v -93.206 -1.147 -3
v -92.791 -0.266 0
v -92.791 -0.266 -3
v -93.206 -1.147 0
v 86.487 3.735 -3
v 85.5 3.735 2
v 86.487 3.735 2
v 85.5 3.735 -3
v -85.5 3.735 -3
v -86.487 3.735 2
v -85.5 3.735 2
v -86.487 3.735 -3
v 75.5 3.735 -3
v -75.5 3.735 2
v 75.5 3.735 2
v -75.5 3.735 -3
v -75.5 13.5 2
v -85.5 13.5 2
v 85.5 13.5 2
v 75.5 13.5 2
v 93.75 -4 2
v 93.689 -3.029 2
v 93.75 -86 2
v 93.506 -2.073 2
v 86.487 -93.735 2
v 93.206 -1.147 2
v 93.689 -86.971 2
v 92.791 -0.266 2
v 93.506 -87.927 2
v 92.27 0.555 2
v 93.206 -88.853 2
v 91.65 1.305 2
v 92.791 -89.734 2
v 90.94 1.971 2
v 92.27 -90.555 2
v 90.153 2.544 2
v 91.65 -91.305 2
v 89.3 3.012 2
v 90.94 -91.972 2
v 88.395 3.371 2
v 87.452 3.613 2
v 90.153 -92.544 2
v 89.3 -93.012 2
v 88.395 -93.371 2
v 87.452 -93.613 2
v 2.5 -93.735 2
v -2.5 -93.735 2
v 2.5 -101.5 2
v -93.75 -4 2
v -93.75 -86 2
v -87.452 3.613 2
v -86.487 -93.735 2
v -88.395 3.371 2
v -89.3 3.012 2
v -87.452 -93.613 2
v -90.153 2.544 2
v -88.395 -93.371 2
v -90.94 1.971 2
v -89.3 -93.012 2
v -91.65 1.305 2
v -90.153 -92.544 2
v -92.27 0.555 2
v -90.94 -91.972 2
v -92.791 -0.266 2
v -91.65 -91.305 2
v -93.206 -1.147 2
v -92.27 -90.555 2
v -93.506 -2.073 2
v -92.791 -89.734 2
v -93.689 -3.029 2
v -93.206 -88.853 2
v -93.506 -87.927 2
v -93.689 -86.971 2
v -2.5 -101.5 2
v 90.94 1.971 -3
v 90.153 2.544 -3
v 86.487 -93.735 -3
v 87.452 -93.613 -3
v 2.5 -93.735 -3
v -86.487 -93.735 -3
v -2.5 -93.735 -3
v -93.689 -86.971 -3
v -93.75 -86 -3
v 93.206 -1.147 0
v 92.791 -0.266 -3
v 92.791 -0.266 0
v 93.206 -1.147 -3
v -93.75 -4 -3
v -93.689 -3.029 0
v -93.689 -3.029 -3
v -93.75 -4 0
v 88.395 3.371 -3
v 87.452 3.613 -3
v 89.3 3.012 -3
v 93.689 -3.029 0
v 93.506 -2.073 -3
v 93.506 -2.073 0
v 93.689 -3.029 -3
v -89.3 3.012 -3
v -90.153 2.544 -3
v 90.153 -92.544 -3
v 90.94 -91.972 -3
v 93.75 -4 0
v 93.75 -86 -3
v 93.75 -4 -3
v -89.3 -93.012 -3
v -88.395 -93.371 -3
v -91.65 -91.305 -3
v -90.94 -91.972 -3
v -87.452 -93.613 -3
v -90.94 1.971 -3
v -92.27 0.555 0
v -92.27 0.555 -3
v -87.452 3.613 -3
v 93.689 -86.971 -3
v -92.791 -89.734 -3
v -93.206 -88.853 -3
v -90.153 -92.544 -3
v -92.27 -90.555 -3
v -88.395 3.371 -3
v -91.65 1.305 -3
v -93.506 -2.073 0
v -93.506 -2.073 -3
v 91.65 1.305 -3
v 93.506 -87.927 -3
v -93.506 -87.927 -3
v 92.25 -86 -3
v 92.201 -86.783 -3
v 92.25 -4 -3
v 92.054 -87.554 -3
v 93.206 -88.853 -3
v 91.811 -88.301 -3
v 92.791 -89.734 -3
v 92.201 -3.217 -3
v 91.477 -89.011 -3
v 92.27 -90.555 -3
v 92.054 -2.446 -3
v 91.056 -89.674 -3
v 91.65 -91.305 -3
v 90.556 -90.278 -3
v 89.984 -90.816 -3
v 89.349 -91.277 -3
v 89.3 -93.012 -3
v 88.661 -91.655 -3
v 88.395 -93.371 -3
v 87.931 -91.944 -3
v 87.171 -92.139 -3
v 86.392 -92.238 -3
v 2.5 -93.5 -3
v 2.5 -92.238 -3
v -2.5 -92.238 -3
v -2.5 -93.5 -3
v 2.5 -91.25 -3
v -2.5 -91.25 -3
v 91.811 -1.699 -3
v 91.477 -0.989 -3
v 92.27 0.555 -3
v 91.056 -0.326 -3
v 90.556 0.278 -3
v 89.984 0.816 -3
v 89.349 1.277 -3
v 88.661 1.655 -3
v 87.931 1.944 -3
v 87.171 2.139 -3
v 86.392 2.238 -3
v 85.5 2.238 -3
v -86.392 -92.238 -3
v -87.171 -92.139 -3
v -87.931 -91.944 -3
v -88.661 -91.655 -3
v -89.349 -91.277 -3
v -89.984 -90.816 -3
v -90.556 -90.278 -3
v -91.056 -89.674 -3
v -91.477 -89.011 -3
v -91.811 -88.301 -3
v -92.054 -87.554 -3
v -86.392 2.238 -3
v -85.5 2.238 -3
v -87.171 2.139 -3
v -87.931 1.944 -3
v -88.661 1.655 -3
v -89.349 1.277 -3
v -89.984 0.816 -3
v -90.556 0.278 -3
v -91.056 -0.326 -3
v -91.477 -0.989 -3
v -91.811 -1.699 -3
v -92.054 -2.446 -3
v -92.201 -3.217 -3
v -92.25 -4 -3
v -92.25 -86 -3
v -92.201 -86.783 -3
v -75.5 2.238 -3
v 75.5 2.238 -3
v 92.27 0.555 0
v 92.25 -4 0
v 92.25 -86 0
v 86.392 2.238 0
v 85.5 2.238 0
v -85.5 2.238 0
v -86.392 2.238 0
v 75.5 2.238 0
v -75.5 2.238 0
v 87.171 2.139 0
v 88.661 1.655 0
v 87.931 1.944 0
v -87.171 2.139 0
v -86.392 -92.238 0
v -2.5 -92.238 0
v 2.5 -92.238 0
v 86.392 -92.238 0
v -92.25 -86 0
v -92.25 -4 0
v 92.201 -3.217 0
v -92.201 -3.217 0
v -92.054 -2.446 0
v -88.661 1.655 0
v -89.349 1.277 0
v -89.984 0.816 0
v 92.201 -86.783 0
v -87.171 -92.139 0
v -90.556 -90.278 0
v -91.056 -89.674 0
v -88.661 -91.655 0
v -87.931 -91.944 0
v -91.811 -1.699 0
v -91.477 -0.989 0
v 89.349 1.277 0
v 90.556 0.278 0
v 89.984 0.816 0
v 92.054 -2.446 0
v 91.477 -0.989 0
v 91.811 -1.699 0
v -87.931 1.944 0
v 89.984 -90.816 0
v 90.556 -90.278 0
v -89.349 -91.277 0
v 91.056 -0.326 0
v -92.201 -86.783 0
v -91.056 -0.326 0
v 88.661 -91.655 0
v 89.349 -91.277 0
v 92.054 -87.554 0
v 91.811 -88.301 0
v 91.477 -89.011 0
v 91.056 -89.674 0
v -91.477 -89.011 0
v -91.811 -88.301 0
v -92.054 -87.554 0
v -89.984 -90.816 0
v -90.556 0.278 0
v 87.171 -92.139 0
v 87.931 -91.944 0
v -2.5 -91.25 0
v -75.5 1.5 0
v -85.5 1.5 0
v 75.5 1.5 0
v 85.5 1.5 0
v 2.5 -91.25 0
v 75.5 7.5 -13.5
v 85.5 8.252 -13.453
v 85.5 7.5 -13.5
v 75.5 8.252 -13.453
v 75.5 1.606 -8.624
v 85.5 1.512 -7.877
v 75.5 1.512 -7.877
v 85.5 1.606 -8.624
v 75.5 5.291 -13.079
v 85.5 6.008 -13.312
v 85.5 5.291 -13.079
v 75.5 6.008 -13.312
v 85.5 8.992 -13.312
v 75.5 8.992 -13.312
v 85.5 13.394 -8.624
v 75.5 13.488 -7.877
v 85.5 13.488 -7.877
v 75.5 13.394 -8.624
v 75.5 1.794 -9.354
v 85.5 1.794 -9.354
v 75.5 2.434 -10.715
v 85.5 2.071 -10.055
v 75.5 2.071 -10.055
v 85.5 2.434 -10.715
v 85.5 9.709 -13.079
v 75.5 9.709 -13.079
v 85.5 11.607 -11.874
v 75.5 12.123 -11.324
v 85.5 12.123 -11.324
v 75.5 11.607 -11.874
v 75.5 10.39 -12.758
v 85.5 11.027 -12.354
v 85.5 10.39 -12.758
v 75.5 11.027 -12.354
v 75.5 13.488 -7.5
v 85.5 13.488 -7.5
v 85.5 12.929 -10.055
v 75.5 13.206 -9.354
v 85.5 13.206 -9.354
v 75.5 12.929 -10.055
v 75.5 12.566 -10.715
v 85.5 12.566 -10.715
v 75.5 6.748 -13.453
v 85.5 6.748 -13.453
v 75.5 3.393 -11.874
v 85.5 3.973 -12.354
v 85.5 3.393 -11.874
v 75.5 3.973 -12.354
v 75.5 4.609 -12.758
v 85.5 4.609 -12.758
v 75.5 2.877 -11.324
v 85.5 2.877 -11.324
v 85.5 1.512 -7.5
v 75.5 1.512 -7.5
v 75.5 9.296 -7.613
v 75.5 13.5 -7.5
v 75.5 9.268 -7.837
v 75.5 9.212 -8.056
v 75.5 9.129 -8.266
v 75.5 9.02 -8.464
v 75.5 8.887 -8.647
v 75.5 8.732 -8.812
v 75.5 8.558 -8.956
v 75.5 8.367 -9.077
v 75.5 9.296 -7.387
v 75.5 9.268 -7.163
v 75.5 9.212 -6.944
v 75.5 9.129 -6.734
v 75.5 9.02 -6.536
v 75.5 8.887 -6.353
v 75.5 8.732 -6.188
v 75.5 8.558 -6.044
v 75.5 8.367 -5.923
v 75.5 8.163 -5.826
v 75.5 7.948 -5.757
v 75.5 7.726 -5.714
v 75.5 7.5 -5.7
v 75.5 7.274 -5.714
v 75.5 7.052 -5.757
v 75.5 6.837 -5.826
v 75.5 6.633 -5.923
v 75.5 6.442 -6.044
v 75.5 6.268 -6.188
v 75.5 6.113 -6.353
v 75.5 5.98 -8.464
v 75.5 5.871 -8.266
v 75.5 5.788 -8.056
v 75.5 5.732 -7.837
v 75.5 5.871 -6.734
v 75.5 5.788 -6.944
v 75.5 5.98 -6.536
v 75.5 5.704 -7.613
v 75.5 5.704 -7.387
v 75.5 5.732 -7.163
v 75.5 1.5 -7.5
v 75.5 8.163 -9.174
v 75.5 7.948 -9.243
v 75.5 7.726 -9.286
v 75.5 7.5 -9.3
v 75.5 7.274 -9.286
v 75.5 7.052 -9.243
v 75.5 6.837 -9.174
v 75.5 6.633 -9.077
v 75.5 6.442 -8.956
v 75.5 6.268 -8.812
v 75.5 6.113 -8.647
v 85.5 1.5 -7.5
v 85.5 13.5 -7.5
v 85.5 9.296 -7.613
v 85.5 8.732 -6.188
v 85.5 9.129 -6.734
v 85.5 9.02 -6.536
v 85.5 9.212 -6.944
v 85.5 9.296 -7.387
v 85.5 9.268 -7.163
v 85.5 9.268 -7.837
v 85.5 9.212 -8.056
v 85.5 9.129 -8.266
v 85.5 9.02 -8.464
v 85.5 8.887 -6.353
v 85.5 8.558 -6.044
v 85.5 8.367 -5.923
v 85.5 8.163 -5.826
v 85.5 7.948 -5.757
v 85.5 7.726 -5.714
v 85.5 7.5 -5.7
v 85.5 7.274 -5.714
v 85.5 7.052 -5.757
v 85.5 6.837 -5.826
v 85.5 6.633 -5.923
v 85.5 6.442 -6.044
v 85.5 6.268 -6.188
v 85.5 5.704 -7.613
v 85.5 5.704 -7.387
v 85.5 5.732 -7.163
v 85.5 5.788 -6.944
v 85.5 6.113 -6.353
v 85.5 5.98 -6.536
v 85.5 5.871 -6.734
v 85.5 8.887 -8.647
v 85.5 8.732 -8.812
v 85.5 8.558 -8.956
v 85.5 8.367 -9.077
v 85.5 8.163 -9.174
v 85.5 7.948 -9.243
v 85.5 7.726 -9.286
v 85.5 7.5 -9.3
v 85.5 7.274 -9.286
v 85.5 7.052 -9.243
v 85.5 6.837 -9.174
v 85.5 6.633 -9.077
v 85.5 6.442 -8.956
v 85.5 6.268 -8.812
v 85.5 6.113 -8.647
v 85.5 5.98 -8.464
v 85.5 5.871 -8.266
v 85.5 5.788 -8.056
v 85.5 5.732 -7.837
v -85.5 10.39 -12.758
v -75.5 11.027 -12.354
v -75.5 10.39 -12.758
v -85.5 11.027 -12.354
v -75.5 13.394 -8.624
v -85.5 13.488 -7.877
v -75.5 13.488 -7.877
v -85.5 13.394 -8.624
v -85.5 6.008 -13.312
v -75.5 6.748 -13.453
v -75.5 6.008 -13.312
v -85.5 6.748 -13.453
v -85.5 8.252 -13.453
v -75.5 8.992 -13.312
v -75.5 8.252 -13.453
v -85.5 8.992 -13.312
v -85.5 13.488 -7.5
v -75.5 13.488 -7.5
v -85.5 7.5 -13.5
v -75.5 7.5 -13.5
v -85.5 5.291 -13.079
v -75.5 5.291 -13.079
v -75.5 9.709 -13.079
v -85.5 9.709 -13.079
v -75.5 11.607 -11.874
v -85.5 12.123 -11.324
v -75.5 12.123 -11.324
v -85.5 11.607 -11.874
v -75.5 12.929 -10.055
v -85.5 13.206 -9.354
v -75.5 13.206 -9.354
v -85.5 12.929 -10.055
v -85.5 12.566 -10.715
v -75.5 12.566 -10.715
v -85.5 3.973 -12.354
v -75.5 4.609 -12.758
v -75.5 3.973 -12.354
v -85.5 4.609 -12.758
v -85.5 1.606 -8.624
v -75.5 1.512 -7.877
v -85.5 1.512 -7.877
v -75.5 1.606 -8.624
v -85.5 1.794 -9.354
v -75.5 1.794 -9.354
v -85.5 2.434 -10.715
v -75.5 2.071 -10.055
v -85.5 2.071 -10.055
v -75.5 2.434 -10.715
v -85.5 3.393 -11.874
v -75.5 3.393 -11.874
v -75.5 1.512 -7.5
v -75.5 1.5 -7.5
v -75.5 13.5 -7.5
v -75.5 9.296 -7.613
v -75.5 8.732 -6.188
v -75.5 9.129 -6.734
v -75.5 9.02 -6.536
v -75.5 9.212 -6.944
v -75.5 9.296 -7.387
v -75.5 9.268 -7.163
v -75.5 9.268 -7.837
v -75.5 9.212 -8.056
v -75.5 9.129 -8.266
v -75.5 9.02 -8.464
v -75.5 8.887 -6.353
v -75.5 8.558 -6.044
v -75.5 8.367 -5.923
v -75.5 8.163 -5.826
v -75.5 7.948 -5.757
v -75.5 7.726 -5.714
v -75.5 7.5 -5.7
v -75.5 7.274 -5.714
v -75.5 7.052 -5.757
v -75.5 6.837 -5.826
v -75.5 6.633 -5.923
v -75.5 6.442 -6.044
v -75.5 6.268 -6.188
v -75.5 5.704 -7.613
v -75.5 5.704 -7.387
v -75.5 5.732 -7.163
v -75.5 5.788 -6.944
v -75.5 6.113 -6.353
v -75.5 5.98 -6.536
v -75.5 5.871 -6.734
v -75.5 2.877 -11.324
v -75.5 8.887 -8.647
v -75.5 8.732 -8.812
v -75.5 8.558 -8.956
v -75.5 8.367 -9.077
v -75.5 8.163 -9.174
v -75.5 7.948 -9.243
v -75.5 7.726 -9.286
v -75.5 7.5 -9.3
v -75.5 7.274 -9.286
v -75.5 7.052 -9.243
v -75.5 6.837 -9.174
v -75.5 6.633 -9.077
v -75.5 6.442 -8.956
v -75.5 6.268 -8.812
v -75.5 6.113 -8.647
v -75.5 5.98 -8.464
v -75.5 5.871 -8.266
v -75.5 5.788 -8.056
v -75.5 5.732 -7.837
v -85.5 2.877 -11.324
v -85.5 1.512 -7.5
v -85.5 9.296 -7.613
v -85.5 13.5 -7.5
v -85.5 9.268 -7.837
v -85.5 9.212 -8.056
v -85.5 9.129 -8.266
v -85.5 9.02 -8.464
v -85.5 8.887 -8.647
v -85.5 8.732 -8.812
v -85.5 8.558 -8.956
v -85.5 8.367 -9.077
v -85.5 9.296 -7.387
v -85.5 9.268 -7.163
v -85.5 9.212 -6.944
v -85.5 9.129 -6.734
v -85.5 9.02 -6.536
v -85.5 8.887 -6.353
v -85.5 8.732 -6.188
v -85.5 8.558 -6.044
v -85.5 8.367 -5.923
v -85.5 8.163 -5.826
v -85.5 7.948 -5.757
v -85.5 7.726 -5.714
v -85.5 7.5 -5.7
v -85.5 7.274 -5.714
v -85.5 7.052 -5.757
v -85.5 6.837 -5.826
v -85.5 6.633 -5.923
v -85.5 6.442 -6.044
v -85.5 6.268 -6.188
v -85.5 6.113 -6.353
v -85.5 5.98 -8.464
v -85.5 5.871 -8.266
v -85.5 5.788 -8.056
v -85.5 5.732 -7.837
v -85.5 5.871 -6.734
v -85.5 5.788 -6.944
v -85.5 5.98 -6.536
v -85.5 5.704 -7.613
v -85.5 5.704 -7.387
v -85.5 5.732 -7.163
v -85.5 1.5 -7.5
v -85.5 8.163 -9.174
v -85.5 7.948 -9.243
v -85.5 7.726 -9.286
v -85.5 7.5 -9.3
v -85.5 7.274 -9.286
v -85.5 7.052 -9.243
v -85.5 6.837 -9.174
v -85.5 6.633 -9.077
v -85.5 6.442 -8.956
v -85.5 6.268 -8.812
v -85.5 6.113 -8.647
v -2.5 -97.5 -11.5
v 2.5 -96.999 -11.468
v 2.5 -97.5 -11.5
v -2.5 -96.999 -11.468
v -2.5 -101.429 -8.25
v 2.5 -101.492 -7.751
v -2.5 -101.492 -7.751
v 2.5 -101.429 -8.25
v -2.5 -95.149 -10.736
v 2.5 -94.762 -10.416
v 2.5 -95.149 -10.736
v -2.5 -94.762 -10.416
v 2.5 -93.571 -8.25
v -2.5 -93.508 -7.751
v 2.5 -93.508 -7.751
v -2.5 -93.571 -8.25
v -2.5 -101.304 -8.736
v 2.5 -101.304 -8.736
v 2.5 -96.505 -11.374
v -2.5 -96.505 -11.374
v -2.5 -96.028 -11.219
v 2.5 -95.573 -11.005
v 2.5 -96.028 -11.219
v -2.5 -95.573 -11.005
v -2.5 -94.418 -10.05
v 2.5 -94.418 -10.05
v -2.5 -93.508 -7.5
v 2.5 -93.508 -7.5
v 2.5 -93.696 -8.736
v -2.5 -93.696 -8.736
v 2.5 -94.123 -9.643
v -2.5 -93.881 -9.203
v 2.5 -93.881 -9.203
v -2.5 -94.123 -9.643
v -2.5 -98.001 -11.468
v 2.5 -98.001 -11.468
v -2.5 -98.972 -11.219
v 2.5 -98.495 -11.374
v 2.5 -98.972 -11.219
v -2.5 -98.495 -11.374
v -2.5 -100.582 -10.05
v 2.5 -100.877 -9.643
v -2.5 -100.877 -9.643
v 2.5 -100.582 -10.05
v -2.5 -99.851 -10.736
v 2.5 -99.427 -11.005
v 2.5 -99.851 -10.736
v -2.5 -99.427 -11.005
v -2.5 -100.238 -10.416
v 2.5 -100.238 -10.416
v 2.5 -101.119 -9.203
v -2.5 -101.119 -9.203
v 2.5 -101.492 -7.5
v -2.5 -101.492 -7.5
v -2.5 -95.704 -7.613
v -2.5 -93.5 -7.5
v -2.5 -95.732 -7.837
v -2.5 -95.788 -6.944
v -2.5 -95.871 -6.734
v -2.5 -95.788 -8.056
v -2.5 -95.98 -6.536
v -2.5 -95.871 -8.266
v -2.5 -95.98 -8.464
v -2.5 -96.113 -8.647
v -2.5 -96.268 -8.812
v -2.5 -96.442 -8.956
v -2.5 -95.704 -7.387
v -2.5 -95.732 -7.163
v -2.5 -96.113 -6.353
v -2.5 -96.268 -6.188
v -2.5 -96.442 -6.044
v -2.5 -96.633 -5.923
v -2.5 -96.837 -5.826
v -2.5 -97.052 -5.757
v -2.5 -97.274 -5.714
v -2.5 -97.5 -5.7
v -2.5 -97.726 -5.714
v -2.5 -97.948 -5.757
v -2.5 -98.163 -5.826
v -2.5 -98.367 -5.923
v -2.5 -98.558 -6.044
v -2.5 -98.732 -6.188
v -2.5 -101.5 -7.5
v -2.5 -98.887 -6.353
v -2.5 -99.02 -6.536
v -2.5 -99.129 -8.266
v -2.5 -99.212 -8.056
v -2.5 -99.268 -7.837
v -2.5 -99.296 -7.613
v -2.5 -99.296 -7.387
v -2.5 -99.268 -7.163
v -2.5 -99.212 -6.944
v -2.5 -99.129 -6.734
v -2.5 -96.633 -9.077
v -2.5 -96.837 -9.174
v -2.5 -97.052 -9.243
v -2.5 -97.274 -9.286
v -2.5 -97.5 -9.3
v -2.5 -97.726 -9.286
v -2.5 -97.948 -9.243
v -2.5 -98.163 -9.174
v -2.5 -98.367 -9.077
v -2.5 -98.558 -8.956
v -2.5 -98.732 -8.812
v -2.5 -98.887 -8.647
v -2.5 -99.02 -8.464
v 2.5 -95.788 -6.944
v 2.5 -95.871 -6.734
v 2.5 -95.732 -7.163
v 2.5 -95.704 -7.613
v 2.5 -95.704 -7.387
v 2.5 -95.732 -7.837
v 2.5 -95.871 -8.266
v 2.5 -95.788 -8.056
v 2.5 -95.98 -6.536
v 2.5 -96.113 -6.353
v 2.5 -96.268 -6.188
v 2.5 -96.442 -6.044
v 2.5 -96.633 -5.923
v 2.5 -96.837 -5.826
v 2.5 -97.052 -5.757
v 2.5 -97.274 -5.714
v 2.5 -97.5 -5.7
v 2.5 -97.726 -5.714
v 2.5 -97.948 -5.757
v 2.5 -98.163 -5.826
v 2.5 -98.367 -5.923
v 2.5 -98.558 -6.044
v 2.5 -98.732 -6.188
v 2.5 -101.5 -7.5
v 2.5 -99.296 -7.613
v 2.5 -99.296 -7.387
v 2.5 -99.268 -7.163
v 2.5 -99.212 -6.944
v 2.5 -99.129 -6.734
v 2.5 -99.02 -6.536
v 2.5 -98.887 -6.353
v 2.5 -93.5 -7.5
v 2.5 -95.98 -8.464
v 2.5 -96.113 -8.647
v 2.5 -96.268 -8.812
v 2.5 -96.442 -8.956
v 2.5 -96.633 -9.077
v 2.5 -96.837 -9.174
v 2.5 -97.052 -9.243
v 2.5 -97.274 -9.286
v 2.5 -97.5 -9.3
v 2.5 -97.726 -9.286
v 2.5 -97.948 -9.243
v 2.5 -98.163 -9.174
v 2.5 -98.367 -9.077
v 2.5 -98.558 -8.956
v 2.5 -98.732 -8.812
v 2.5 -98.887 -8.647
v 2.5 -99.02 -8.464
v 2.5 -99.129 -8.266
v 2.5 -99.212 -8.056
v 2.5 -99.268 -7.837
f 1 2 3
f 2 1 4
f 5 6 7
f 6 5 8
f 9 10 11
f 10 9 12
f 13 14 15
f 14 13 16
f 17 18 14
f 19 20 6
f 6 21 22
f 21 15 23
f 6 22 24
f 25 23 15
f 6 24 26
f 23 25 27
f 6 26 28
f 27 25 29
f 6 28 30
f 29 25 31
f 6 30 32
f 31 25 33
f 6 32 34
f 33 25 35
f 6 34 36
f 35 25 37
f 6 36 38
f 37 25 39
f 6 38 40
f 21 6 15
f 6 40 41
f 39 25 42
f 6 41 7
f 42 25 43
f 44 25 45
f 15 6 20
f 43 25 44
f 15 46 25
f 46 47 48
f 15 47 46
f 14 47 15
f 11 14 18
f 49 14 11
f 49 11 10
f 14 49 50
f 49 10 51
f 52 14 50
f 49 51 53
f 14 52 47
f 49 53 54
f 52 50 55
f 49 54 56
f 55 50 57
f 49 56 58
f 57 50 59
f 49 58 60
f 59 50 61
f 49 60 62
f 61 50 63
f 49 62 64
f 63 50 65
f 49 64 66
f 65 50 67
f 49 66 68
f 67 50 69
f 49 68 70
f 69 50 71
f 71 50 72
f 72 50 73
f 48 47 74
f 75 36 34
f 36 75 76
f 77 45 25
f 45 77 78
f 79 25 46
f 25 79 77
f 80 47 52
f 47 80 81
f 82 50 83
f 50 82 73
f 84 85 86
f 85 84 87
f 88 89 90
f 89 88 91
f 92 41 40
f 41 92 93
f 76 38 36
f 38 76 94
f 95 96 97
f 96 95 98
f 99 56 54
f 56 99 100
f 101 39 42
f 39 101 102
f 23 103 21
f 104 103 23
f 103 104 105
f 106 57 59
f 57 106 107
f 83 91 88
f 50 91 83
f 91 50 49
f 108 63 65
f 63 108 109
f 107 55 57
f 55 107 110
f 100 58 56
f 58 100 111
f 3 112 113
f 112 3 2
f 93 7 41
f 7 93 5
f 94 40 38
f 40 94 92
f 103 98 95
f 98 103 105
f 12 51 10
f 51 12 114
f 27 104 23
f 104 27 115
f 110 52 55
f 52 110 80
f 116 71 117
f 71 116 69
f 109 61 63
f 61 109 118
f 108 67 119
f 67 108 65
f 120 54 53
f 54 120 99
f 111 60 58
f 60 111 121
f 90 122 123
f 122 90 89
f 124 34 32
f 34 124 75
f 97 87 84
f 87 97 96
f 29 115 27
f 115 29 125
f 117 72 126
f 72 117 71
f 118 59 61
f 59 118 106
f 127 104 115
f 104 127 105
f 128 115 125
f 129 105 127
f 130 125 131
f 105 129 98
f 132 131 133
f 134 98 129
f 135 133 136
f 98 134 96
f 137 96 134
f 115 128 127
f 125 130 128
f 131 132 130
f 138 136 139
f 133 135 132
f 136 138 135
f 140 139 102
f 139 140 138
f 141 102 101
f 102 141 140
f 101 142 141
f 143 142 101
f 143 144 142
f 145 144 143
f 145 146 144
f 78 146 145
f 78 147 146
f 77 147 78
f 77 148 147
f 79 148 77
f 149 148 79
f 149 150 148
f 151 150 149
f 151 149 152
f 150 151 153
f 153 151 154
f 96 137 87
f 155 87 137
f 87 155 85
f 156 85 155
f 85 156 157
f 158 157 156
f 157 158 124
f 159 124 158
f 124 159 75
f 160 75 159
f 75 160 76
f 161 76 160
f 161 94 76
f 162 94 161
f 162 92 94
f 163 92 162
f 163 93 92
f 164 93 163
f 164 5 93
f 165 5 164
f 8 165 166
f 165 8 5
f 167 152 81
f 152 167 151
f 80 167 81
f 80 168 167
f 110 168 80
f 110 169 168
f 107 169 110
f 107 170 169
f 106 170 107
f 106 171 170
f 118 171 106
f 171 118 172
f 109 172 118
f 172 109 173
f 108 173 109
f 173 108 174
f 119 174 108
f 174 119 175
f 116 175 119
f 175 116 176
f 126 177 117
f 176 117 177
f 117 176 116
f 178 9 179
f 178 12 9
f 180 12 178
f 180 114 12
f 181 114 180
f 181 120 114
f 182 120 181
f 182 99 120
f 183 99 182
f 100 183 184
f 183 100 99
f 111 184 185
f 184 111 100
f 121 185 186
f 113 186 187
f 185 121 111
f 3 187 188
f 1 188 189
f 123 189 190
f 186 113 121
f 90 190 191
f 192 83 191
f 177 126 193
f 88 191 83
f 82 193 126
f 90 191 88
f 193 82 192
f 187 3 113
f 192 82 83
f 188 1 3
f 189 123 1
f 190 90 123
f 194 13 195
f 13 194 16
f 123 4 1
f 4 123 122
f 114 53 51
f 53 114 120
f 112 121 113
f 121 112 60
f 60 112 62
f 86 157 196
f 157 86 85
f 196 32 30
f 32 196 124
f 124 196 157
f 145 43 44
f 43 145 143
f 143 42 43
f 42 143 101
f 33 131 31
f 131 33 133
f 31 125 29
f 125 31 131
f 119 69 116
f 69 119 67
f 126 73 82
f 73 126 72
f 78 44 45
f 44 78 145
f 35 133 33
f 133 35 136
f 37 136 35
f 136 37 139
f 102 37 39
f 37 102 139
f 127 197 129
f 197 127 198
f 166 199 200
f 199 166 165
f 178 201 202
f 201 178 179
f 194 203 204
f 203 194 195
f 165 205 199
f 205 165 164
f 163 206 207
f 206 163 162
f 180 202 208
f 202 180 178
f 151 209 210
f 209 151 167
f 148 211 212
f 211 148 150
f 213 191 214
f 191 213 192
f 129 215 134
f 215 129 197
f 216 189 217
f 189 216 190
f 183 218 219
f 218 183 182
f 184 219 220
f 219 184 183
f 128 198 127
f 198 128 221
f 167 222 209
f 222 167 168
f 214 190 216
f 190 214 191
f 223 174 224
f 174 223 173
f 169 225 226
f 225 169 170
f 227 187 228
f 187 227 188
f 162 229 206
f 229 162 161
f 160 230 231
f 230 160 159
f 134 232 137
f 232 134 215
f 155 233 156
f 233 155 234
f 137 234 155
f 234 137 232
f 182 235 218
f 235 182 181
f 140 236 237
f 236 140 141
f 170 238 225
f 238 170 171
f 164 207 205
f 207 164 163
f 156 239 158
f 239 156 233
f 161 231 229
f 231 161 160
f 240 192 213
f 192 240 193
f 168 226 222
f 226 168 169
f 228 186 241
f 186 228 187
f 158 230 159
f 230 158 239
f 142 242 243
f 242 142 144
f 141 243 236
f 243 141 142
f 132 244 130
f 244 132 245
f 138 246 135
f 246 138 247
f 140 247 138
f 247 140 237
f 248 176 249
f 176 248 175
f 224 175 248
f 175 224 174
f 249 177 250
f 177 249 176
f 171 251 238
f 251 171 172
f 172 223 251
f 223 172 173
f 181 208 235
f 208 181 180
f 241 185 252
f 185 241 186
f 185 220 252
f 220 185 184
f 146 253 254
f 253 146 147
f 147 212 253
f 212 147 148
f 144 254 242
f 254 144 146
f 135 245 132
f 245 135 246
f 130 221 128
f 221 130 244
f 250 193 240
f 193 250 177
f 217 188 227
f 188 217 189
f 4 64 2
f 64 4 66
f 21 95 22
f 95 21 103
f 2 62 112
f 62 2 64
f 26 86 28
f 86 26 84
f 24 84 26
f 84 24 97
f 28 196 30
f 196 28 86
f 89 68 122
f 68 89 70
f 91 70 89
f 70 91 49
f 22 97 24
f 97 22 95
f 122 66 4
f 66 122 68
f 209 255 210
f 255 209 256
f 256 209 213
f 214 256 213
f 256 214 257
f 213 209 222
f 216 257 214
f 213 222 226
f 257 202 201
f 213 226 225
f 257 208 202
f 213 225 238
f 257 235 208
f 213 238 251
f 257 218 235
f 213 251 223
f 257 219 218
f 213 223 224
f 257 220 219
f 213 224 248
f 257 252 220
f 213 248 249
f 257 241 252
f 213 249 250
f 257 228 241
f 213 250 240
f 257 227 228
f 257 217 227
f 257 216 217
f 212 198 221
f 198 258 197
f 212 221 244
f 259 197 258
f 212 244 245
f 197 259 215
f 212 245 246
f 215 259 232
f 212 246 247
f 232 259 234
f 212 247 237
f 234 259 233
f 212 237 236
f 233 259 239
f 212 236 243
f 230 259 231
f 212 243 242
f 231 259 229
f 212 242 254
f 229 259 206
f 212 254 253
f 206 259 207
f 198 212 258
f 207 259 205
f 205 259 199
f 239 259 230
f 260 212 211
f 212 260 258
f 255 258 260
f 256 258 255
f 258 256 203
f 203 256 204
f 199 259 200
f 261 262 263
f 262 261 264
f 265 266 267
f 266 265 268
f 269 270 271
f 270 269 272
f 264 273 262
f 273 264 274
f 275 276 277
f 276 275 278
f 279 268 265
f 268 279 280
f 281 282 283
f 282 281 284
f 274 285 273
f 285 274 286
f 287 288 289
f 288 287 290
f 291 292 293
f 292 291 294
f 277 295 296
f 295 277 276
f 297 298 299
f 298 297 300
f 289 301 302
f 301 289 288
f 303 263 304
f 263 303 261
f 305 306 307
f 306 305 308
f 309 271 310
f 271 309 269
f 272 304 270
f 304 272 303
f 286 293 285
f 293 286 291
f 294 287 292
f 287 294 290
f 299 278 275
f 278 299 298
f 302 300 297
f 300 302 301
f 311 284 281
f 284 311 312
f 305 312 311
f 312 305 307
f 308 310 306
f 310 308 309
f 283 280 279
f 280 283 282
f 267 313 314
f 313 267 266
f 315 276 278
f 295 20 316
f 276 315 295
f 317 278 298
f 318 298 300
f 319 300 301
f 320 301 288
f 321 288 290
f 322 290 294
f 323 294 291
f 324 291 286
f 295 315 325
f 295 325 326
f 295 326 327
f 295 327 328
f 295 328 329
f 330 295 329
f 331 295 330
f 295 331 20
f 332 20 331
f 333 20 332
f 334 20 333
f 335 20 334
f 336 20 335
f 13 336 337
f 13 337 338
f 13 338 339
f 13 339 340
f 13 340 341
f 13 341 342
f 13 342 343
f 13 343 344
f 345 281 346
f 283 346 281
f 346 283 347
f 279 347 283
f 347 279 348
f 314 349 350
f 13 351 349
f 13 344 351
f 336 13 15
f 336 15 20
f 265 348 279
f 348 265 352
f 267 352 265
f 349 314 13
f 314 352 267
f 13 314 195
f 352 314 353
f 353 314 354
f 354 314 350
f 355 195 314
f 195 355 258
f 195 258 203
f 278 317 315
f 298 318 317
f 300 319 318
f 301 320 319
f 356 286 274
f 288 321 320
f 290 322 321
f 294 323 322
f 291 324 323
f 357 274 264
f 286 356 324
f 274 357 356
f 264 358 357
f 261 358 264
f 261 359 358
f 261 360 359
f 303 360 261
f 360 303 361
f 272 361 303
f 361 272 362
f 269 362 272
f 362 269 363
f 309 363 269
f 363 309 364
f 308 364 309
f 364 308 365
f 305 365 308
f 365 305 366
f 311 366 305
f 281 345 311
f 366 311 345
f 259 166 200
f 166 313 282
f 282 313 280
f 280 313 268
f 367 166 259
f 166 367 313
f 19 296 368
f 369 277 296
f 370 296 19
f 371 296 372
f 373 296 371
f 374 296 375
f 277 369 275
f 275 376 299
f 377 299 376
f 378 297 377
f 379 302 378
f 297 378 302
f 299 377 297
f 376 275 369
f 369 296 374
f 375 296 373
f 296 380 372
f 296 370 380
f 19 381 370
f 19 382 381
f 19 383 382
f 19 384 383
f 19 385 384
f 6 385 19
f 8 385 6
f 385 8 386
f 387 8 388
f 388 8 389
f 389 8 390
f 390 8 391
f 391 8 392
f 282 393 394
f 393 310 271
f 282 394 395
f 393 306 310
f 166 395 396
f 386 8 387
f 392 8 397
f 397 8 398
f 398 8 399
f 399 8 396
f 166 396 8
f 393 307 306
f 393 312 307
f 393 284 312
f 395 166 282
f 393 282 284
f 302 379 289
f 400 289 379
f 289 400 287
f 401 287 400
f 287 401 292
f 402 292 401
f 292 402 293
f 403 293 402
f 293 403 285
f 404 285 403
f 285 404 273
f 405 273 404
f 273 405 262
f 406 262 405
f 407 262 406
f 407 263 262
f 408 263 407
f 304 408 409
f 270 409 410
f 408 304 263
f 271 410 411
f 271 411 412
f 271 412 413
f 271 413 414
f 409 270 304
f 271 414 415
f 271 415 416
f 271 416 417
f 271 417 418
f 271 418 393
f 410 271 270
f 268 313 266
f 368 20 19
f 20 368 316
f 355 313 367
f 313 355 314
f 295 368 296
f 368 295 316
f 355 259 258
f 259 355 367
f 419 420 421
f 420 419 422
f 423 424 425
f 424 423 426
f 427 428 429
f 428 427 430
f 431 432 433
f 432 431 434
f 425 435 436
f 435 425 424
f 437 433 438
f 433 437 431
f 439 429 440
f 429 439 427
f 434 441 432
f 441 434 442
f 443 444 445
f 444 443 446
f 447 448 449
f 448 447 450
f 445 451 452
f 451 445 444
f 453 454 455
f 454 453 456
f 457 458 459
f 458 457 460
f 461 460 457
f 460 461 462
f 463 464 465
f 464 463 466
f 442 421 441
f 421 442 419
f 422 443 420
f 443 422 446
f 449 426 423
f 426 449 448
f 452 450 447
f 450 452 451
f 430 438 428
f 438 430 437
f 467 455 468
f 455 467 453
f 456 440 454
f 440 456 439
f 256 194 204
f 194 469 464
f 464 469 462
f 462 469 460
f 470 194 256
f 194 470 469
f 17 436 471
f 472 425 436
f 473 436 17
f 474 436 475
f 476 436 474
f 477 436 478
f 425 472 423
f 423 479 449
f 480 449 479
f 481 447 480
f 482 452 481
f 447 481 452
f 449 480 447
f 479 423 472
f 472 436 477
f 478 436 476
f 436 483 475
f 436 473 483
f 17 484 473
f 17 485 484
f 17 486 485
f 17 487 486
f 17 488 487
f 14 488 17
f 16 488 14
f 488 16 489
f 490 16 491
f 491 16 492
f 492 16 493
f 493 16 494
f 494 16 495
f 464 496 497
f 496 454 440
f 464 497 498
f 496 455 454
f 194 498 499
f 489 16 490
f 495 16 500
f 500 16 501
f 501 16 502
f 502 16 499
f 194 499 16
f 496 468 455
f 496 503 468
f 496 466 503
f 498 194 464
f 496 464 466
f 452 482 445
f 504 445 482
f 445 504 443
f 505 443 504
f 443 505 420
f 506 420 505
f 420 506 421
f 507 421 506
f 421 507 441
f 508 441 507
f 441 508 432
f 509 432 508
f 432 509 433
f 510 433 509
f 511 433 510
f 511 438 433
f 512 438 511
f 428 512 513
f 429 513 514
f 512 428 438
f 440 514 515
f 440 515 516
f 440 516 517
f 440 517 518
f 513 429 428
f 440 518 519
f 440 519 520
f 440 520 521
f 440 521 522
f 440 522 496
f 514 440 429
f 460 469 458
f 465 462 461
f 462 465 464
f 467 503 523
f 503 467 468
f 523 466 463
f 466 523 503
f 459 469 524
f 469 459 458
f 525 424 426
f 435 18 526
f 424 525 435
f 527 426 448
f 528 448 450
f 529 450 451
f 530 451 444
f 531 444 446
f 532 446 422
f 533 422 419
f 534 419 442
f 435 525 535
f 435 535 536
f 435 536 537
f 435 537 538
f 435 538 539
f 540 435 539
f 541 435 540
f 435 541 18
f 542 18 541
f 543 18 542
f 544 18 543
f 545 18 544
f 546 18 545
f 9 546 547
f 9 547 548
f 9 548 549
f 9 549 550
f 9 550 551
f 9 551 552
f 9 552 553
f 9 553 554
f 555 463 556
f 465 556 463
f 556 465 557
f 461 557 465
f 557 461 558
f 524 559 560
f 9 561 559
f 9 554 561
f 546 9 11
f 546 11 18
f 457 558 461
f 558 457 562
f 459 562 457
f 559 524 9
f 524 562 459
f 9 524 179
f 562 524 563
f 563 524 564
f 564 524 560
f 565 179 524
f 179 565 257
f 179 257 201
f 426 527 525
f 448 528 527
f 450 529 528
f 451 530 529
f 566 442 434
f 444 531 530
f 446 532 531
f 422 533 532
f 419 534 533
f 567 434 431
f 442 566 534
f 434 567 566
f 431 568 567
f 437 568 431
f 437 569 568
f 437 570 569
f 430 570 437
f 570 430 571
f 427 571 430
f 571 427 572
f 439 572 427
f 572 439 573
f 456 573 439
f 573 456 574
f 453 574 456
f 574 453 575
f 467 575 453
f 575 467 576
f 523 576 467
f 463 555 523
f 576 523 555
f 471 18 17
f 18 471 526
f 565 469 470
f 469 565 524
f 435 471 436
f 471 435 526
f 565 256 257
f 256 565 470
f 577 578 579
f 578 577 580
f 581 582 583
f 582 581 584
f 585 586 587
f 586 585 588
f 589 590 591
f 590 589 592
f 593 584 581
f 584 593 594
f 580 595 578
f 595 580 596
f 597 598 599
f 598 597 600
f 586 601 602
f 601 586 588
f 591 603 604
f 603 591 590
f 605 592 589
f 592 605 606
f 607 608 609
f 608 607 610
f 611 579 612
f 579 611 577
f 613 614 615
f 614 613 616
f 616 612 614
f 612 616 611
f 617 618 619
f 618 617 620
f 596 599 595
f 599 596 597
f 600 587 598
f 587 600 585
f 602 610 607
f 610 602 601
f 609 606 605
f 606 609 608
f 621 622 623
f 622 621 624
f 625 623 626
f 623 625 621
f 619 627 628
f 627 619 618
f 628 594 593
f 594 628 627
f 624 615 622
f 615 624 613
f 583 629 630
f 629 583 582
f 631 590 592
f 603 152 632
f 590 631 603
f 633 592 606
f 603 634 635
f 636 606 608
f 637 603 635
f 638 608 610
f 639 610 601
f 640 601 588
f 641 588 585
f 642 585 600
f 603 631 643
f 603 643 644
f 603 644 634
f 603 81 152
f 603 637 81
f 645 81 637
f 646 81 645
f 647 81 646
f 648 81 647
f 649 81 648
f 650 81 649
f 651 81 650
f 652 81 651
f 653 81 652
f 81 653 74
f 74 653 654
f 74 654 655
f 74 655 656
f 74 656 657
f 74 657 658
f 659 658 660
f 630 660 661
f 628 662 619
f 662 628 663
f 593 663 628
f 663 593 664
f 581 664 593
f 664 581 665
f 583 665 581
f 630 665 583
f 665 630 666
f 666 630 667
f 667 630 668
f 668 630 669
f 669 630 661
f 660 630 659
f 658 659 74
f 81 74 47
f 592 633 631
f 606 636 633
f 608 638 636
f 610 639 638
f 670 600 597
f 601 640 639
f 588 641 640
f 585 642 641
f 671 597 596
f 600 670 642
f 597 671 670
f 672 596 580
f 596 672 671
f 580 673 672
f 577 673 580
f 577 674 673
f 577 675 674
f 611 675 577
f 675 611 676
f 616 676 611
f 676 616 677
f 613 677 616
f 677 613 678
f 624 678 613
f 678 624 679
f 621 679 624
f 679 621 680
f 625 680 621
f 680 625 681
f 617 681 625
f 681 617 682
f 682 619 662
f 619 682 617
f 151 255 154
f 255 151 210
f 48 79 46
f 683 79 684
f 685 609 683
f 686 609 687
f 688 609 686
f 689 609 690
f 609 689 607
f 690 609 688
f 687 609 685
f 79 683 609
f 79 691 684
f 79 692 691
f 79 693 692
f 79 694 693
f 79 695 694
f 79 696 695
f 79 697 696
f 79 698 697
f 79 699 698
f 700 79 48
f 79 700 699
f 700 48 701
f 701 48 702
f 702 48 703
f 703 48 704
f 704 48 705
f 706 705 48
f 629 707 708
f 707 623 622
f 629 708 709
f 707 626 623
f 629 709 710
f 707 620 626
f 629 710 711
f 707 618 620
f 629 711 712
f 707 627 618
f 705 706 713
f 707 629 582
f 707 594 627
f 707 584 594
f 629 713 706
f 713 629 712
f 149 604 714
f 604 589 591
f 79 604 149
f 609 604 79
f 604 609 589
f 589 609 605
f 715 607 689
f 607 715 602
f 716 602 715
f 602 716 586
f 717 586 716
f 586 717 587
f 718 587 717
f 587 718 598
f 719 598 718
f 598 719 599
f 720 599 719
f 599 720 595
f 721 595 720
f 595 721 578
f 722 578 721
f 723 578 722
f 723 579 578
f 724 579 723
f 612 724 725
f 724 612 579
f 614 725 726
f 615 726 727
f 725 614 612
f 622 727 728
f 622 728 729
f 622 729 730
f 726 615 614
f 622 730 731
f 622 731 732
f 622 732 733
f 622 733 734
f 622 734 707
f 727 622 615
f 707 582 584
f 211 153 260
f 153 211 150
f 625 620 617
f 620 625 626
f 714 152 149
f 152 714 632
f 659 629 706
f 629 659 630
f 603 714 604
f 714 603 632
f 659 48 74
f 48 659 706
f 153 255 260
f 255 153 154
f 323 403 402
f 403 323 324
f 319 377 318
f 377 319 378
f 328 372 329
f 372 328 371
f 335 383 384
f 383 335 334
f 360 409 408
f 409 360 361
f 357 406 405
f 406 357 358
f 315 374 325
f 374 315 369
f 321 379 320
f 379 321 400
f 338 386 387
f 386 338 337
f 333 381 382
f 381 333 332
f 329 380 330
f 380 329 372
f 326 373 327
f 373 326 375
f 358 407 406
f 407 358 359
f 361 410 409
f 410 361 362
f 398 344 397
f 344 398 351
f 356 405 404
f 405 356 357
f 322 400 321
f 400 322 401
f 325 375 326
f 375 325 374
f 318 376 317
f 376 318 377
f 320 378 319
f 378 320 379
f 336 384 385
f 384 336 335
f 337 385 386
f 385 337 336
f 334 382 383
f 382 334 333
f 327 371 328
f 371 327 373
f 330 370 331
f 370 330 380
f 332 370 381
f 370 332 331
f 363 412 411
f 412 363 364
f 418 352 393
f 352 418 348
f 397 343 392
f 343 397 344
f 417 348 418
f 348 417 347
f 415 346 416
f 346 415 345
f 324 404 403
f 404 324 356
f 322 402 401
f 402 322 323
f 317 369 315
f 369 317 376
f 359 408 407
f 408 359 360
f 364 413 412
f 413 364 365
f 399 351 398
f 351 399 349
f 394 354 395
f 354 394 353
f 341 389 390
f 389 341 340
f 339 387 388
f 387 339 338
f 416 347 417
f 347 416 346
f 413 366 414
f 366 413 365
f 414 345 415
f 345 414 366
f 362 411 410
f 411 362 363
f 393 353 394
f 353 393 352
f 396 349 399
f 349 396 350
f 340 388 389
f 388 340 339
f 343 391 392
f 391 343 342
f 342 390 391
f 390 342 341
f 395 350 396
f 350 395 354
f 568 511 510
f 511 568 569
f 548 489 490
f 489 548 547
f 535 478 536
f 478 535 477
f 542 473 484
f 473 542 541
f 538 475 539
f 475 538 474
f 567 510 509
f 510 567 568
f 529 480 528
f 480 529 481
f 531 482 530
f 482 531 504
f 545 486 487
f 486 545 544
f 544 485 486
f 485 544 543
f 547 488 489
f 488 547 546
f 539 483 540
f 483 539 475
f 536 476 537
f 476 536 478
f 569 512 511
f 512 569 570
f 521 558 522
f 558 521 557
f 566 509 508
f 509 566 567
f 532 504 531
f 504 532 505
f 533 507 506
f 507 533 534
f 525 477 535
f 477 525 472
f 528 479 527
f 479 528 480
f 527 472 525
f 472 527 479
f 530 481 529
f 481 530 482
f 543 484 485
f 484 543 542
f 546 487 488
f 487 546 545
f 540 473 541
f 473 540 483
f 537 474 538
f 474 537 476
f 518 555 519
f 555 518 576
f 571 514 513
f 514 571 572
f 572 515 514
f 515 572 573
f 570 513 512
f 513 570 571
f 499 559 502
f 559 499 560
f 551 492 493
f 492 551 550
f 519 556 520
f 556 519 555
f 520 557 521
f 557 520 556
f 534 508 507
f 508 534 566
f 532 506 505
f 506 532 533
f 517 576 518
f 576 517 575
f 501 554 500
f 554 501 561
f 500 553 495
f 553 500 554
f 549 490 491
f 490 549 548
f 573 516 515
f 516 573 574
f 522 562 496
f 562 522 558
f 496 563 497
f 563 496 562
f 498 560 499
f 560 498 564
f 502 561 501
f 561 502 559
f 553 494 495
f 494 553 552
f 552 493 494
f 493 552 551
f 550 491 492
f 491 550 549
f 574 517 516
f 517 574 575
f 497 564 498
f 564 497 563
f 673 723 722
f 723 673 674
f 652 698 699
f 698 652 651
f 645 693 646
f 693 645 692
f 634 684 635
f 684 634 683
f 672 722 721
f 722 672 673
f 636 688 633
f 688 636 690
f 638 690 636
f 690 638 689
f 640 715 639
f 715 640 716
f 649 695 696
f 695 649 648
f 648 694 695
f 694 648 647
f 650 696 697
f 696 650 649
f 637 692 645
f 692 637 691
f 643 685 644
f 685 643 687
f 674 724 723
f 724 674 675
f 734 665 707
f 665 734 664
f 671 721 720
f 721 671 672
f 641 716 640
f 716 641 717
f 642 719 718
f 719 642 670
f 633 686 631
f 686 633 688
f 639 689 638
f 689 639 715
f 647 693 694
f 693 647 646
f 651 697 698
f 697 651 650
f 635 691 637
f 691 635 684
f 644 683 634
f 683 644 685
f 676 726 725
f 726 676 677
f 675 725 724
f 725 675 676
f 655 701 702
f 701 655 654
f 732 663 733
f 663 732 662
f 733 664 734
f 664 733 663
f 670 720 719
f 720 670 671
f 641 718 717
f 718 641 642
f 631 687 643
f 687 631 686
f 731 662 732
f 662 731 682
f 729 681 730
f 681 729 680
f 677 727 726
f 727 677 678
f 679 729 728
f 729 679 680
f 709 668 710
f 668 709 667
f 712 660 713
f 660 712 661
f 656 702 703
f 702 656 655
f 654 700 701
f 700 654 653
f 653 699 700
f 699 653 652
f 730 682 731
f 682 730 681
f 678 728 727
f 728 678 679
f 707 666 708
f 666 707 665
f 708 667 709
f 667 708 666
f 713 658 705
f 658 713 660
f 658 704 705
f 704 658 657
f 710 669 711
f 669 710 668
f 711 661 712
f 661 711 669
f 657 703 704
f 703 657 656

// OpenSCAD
$fn = 50;


difference() {
	union() {
		translate(v = [0, -45.0000000000, -3]) {
			rotate(a = [0, 0, 0]) {
				difference() {
					union() {
						hull() {
							translate(v = [-86.0000000000, 41.0000000000, 0]) {
								cylinder(h = 5, r = 7.7500000000);
							}
							translate(v = [86.0000000000, 41.0000000000, 0]) {
								cylinder(h = 5, r = 7.7500000000);
							}
							translate(v = [-86.0000000000, -41.0000000000, 0]) {
								cylinder(h = 5, r = 7.7500000000);
							}
							translate(v = [86.0000000000, -41.0000000000, 0]) {
								cylinder(h = 5, r = 7.7500000000);
							}
						}
					}
					union() {
						hull() {
							translate(v = [-86.0000000000, 41.0000000000, 0]) {
								cylinder(h = 5, r = 6.2500000000);
							}
							translate(v = [86.0000000000, 41.0000000000, 0]) {
								cylinder(h = 5, r = 6.2500000000);
							}
							translate(v = [-86.0000000000, -41.0000000000, 0]) {
								cylinder(h = 5, r = 6.2500000000);
							}
							translate(v = [86.0000000000, -41.0000000000, 0]) {
								cylinder(h = 5, r = 6.2500000000);
							}
						}
					}
				}
			}
		}
		translate(v = [0, -45.0000000000, 0]) {
			hull() {
				translate(v = [-86.0000000000, 41.0000000000, 0]) {
					cylinder(h = 2, r = 7.7500000000);
				}
				translate(v = [86.0000000000, 41.0000000000, 0]) {
					cylinder(h = 2, r = 7.7500000000);
				}
				translate(v = [-86.0000000000, -41.0000000000, 0]) {
					cylinder(h = 2, r = 7.7500000000);
				}
				translate(v = [86.0000000000, -41.0000000000, 0]) {
					cylinder(h = 2, r = 7.7500000000);
				}
			}
		}
		translate(v = [75.5000000000, 7.5000000000, -7.5000000000]) {
			rotate(a = [0, 90, 0]) {
				cylinder(h = 10, r = 6.0000000000);
			}
		}
		translate(v = [75.5000000000, 1.5000000000, -7.5000000000]) {
			cube(size = [10, 12, 7.5000000000]);
		}
		translate(v = [75.5000000000, -15.0000000000, 0.0000000000]) {
			cube(size = [10, 28.5000000000, 2]);
		}
		translate(v = [-85.5000000000, 7.5000000000, -7.5000000000]) {
			rotate(a = [0, 90, 0]) {
				cylinder(h = 10, r = 6.0000000000);
			}
		}
		translate(v = [-85.5000000000, 1.5000000000, -7.5000000000]) {
			cube(size = [10, 12, 7.5000000000]);
		}
		translate(v = [-85.5000000000, -15.0000000000, 0.0000000000]) {
			cube(size = [10, 28.5000000000, 2]);
		}
		translate(v = [-2.5000000000, -97.5000000000, -7.5000000000]) {
			rotate(a = [0, 90, 0]) {
				cylinder(h = 5, r = 4.0000000000);
			}
		}
		translate(v = [-2.5000000000, -101.5000000000, -7.5000000000]) {
			cube(size = [5, 8, 7.5000000000]);
		}
		translate(v = [-2.5000000000, -101.5000000000, -3.0000000000]) {
			cube(size = [5, 10.2500000000, 5]);
		}
	}
	union() {
		translate(v = [75.5000000000, 7.5000000000, -7.5000000000]) {
			rotate(a = [0, 90, 0]) {
				cylinder(h = 10, r = 1.8000000000);
			}
		}
		translate(v = [-85.5000000000, 7.5000000000, -7.5000000000]) {
			rotate(a = [0, 90, 0]) {
				cylinder(h = 10, r = 1.8000000000);
			}
		}
		translate(v = [-5.0000000000, -97.5000000000, -7.5000000000]) {
			rotate(a = [0, 90, 0]) {
				cylinder(h = 10, r = 1.8000000000);
			}
		}
	}
}
